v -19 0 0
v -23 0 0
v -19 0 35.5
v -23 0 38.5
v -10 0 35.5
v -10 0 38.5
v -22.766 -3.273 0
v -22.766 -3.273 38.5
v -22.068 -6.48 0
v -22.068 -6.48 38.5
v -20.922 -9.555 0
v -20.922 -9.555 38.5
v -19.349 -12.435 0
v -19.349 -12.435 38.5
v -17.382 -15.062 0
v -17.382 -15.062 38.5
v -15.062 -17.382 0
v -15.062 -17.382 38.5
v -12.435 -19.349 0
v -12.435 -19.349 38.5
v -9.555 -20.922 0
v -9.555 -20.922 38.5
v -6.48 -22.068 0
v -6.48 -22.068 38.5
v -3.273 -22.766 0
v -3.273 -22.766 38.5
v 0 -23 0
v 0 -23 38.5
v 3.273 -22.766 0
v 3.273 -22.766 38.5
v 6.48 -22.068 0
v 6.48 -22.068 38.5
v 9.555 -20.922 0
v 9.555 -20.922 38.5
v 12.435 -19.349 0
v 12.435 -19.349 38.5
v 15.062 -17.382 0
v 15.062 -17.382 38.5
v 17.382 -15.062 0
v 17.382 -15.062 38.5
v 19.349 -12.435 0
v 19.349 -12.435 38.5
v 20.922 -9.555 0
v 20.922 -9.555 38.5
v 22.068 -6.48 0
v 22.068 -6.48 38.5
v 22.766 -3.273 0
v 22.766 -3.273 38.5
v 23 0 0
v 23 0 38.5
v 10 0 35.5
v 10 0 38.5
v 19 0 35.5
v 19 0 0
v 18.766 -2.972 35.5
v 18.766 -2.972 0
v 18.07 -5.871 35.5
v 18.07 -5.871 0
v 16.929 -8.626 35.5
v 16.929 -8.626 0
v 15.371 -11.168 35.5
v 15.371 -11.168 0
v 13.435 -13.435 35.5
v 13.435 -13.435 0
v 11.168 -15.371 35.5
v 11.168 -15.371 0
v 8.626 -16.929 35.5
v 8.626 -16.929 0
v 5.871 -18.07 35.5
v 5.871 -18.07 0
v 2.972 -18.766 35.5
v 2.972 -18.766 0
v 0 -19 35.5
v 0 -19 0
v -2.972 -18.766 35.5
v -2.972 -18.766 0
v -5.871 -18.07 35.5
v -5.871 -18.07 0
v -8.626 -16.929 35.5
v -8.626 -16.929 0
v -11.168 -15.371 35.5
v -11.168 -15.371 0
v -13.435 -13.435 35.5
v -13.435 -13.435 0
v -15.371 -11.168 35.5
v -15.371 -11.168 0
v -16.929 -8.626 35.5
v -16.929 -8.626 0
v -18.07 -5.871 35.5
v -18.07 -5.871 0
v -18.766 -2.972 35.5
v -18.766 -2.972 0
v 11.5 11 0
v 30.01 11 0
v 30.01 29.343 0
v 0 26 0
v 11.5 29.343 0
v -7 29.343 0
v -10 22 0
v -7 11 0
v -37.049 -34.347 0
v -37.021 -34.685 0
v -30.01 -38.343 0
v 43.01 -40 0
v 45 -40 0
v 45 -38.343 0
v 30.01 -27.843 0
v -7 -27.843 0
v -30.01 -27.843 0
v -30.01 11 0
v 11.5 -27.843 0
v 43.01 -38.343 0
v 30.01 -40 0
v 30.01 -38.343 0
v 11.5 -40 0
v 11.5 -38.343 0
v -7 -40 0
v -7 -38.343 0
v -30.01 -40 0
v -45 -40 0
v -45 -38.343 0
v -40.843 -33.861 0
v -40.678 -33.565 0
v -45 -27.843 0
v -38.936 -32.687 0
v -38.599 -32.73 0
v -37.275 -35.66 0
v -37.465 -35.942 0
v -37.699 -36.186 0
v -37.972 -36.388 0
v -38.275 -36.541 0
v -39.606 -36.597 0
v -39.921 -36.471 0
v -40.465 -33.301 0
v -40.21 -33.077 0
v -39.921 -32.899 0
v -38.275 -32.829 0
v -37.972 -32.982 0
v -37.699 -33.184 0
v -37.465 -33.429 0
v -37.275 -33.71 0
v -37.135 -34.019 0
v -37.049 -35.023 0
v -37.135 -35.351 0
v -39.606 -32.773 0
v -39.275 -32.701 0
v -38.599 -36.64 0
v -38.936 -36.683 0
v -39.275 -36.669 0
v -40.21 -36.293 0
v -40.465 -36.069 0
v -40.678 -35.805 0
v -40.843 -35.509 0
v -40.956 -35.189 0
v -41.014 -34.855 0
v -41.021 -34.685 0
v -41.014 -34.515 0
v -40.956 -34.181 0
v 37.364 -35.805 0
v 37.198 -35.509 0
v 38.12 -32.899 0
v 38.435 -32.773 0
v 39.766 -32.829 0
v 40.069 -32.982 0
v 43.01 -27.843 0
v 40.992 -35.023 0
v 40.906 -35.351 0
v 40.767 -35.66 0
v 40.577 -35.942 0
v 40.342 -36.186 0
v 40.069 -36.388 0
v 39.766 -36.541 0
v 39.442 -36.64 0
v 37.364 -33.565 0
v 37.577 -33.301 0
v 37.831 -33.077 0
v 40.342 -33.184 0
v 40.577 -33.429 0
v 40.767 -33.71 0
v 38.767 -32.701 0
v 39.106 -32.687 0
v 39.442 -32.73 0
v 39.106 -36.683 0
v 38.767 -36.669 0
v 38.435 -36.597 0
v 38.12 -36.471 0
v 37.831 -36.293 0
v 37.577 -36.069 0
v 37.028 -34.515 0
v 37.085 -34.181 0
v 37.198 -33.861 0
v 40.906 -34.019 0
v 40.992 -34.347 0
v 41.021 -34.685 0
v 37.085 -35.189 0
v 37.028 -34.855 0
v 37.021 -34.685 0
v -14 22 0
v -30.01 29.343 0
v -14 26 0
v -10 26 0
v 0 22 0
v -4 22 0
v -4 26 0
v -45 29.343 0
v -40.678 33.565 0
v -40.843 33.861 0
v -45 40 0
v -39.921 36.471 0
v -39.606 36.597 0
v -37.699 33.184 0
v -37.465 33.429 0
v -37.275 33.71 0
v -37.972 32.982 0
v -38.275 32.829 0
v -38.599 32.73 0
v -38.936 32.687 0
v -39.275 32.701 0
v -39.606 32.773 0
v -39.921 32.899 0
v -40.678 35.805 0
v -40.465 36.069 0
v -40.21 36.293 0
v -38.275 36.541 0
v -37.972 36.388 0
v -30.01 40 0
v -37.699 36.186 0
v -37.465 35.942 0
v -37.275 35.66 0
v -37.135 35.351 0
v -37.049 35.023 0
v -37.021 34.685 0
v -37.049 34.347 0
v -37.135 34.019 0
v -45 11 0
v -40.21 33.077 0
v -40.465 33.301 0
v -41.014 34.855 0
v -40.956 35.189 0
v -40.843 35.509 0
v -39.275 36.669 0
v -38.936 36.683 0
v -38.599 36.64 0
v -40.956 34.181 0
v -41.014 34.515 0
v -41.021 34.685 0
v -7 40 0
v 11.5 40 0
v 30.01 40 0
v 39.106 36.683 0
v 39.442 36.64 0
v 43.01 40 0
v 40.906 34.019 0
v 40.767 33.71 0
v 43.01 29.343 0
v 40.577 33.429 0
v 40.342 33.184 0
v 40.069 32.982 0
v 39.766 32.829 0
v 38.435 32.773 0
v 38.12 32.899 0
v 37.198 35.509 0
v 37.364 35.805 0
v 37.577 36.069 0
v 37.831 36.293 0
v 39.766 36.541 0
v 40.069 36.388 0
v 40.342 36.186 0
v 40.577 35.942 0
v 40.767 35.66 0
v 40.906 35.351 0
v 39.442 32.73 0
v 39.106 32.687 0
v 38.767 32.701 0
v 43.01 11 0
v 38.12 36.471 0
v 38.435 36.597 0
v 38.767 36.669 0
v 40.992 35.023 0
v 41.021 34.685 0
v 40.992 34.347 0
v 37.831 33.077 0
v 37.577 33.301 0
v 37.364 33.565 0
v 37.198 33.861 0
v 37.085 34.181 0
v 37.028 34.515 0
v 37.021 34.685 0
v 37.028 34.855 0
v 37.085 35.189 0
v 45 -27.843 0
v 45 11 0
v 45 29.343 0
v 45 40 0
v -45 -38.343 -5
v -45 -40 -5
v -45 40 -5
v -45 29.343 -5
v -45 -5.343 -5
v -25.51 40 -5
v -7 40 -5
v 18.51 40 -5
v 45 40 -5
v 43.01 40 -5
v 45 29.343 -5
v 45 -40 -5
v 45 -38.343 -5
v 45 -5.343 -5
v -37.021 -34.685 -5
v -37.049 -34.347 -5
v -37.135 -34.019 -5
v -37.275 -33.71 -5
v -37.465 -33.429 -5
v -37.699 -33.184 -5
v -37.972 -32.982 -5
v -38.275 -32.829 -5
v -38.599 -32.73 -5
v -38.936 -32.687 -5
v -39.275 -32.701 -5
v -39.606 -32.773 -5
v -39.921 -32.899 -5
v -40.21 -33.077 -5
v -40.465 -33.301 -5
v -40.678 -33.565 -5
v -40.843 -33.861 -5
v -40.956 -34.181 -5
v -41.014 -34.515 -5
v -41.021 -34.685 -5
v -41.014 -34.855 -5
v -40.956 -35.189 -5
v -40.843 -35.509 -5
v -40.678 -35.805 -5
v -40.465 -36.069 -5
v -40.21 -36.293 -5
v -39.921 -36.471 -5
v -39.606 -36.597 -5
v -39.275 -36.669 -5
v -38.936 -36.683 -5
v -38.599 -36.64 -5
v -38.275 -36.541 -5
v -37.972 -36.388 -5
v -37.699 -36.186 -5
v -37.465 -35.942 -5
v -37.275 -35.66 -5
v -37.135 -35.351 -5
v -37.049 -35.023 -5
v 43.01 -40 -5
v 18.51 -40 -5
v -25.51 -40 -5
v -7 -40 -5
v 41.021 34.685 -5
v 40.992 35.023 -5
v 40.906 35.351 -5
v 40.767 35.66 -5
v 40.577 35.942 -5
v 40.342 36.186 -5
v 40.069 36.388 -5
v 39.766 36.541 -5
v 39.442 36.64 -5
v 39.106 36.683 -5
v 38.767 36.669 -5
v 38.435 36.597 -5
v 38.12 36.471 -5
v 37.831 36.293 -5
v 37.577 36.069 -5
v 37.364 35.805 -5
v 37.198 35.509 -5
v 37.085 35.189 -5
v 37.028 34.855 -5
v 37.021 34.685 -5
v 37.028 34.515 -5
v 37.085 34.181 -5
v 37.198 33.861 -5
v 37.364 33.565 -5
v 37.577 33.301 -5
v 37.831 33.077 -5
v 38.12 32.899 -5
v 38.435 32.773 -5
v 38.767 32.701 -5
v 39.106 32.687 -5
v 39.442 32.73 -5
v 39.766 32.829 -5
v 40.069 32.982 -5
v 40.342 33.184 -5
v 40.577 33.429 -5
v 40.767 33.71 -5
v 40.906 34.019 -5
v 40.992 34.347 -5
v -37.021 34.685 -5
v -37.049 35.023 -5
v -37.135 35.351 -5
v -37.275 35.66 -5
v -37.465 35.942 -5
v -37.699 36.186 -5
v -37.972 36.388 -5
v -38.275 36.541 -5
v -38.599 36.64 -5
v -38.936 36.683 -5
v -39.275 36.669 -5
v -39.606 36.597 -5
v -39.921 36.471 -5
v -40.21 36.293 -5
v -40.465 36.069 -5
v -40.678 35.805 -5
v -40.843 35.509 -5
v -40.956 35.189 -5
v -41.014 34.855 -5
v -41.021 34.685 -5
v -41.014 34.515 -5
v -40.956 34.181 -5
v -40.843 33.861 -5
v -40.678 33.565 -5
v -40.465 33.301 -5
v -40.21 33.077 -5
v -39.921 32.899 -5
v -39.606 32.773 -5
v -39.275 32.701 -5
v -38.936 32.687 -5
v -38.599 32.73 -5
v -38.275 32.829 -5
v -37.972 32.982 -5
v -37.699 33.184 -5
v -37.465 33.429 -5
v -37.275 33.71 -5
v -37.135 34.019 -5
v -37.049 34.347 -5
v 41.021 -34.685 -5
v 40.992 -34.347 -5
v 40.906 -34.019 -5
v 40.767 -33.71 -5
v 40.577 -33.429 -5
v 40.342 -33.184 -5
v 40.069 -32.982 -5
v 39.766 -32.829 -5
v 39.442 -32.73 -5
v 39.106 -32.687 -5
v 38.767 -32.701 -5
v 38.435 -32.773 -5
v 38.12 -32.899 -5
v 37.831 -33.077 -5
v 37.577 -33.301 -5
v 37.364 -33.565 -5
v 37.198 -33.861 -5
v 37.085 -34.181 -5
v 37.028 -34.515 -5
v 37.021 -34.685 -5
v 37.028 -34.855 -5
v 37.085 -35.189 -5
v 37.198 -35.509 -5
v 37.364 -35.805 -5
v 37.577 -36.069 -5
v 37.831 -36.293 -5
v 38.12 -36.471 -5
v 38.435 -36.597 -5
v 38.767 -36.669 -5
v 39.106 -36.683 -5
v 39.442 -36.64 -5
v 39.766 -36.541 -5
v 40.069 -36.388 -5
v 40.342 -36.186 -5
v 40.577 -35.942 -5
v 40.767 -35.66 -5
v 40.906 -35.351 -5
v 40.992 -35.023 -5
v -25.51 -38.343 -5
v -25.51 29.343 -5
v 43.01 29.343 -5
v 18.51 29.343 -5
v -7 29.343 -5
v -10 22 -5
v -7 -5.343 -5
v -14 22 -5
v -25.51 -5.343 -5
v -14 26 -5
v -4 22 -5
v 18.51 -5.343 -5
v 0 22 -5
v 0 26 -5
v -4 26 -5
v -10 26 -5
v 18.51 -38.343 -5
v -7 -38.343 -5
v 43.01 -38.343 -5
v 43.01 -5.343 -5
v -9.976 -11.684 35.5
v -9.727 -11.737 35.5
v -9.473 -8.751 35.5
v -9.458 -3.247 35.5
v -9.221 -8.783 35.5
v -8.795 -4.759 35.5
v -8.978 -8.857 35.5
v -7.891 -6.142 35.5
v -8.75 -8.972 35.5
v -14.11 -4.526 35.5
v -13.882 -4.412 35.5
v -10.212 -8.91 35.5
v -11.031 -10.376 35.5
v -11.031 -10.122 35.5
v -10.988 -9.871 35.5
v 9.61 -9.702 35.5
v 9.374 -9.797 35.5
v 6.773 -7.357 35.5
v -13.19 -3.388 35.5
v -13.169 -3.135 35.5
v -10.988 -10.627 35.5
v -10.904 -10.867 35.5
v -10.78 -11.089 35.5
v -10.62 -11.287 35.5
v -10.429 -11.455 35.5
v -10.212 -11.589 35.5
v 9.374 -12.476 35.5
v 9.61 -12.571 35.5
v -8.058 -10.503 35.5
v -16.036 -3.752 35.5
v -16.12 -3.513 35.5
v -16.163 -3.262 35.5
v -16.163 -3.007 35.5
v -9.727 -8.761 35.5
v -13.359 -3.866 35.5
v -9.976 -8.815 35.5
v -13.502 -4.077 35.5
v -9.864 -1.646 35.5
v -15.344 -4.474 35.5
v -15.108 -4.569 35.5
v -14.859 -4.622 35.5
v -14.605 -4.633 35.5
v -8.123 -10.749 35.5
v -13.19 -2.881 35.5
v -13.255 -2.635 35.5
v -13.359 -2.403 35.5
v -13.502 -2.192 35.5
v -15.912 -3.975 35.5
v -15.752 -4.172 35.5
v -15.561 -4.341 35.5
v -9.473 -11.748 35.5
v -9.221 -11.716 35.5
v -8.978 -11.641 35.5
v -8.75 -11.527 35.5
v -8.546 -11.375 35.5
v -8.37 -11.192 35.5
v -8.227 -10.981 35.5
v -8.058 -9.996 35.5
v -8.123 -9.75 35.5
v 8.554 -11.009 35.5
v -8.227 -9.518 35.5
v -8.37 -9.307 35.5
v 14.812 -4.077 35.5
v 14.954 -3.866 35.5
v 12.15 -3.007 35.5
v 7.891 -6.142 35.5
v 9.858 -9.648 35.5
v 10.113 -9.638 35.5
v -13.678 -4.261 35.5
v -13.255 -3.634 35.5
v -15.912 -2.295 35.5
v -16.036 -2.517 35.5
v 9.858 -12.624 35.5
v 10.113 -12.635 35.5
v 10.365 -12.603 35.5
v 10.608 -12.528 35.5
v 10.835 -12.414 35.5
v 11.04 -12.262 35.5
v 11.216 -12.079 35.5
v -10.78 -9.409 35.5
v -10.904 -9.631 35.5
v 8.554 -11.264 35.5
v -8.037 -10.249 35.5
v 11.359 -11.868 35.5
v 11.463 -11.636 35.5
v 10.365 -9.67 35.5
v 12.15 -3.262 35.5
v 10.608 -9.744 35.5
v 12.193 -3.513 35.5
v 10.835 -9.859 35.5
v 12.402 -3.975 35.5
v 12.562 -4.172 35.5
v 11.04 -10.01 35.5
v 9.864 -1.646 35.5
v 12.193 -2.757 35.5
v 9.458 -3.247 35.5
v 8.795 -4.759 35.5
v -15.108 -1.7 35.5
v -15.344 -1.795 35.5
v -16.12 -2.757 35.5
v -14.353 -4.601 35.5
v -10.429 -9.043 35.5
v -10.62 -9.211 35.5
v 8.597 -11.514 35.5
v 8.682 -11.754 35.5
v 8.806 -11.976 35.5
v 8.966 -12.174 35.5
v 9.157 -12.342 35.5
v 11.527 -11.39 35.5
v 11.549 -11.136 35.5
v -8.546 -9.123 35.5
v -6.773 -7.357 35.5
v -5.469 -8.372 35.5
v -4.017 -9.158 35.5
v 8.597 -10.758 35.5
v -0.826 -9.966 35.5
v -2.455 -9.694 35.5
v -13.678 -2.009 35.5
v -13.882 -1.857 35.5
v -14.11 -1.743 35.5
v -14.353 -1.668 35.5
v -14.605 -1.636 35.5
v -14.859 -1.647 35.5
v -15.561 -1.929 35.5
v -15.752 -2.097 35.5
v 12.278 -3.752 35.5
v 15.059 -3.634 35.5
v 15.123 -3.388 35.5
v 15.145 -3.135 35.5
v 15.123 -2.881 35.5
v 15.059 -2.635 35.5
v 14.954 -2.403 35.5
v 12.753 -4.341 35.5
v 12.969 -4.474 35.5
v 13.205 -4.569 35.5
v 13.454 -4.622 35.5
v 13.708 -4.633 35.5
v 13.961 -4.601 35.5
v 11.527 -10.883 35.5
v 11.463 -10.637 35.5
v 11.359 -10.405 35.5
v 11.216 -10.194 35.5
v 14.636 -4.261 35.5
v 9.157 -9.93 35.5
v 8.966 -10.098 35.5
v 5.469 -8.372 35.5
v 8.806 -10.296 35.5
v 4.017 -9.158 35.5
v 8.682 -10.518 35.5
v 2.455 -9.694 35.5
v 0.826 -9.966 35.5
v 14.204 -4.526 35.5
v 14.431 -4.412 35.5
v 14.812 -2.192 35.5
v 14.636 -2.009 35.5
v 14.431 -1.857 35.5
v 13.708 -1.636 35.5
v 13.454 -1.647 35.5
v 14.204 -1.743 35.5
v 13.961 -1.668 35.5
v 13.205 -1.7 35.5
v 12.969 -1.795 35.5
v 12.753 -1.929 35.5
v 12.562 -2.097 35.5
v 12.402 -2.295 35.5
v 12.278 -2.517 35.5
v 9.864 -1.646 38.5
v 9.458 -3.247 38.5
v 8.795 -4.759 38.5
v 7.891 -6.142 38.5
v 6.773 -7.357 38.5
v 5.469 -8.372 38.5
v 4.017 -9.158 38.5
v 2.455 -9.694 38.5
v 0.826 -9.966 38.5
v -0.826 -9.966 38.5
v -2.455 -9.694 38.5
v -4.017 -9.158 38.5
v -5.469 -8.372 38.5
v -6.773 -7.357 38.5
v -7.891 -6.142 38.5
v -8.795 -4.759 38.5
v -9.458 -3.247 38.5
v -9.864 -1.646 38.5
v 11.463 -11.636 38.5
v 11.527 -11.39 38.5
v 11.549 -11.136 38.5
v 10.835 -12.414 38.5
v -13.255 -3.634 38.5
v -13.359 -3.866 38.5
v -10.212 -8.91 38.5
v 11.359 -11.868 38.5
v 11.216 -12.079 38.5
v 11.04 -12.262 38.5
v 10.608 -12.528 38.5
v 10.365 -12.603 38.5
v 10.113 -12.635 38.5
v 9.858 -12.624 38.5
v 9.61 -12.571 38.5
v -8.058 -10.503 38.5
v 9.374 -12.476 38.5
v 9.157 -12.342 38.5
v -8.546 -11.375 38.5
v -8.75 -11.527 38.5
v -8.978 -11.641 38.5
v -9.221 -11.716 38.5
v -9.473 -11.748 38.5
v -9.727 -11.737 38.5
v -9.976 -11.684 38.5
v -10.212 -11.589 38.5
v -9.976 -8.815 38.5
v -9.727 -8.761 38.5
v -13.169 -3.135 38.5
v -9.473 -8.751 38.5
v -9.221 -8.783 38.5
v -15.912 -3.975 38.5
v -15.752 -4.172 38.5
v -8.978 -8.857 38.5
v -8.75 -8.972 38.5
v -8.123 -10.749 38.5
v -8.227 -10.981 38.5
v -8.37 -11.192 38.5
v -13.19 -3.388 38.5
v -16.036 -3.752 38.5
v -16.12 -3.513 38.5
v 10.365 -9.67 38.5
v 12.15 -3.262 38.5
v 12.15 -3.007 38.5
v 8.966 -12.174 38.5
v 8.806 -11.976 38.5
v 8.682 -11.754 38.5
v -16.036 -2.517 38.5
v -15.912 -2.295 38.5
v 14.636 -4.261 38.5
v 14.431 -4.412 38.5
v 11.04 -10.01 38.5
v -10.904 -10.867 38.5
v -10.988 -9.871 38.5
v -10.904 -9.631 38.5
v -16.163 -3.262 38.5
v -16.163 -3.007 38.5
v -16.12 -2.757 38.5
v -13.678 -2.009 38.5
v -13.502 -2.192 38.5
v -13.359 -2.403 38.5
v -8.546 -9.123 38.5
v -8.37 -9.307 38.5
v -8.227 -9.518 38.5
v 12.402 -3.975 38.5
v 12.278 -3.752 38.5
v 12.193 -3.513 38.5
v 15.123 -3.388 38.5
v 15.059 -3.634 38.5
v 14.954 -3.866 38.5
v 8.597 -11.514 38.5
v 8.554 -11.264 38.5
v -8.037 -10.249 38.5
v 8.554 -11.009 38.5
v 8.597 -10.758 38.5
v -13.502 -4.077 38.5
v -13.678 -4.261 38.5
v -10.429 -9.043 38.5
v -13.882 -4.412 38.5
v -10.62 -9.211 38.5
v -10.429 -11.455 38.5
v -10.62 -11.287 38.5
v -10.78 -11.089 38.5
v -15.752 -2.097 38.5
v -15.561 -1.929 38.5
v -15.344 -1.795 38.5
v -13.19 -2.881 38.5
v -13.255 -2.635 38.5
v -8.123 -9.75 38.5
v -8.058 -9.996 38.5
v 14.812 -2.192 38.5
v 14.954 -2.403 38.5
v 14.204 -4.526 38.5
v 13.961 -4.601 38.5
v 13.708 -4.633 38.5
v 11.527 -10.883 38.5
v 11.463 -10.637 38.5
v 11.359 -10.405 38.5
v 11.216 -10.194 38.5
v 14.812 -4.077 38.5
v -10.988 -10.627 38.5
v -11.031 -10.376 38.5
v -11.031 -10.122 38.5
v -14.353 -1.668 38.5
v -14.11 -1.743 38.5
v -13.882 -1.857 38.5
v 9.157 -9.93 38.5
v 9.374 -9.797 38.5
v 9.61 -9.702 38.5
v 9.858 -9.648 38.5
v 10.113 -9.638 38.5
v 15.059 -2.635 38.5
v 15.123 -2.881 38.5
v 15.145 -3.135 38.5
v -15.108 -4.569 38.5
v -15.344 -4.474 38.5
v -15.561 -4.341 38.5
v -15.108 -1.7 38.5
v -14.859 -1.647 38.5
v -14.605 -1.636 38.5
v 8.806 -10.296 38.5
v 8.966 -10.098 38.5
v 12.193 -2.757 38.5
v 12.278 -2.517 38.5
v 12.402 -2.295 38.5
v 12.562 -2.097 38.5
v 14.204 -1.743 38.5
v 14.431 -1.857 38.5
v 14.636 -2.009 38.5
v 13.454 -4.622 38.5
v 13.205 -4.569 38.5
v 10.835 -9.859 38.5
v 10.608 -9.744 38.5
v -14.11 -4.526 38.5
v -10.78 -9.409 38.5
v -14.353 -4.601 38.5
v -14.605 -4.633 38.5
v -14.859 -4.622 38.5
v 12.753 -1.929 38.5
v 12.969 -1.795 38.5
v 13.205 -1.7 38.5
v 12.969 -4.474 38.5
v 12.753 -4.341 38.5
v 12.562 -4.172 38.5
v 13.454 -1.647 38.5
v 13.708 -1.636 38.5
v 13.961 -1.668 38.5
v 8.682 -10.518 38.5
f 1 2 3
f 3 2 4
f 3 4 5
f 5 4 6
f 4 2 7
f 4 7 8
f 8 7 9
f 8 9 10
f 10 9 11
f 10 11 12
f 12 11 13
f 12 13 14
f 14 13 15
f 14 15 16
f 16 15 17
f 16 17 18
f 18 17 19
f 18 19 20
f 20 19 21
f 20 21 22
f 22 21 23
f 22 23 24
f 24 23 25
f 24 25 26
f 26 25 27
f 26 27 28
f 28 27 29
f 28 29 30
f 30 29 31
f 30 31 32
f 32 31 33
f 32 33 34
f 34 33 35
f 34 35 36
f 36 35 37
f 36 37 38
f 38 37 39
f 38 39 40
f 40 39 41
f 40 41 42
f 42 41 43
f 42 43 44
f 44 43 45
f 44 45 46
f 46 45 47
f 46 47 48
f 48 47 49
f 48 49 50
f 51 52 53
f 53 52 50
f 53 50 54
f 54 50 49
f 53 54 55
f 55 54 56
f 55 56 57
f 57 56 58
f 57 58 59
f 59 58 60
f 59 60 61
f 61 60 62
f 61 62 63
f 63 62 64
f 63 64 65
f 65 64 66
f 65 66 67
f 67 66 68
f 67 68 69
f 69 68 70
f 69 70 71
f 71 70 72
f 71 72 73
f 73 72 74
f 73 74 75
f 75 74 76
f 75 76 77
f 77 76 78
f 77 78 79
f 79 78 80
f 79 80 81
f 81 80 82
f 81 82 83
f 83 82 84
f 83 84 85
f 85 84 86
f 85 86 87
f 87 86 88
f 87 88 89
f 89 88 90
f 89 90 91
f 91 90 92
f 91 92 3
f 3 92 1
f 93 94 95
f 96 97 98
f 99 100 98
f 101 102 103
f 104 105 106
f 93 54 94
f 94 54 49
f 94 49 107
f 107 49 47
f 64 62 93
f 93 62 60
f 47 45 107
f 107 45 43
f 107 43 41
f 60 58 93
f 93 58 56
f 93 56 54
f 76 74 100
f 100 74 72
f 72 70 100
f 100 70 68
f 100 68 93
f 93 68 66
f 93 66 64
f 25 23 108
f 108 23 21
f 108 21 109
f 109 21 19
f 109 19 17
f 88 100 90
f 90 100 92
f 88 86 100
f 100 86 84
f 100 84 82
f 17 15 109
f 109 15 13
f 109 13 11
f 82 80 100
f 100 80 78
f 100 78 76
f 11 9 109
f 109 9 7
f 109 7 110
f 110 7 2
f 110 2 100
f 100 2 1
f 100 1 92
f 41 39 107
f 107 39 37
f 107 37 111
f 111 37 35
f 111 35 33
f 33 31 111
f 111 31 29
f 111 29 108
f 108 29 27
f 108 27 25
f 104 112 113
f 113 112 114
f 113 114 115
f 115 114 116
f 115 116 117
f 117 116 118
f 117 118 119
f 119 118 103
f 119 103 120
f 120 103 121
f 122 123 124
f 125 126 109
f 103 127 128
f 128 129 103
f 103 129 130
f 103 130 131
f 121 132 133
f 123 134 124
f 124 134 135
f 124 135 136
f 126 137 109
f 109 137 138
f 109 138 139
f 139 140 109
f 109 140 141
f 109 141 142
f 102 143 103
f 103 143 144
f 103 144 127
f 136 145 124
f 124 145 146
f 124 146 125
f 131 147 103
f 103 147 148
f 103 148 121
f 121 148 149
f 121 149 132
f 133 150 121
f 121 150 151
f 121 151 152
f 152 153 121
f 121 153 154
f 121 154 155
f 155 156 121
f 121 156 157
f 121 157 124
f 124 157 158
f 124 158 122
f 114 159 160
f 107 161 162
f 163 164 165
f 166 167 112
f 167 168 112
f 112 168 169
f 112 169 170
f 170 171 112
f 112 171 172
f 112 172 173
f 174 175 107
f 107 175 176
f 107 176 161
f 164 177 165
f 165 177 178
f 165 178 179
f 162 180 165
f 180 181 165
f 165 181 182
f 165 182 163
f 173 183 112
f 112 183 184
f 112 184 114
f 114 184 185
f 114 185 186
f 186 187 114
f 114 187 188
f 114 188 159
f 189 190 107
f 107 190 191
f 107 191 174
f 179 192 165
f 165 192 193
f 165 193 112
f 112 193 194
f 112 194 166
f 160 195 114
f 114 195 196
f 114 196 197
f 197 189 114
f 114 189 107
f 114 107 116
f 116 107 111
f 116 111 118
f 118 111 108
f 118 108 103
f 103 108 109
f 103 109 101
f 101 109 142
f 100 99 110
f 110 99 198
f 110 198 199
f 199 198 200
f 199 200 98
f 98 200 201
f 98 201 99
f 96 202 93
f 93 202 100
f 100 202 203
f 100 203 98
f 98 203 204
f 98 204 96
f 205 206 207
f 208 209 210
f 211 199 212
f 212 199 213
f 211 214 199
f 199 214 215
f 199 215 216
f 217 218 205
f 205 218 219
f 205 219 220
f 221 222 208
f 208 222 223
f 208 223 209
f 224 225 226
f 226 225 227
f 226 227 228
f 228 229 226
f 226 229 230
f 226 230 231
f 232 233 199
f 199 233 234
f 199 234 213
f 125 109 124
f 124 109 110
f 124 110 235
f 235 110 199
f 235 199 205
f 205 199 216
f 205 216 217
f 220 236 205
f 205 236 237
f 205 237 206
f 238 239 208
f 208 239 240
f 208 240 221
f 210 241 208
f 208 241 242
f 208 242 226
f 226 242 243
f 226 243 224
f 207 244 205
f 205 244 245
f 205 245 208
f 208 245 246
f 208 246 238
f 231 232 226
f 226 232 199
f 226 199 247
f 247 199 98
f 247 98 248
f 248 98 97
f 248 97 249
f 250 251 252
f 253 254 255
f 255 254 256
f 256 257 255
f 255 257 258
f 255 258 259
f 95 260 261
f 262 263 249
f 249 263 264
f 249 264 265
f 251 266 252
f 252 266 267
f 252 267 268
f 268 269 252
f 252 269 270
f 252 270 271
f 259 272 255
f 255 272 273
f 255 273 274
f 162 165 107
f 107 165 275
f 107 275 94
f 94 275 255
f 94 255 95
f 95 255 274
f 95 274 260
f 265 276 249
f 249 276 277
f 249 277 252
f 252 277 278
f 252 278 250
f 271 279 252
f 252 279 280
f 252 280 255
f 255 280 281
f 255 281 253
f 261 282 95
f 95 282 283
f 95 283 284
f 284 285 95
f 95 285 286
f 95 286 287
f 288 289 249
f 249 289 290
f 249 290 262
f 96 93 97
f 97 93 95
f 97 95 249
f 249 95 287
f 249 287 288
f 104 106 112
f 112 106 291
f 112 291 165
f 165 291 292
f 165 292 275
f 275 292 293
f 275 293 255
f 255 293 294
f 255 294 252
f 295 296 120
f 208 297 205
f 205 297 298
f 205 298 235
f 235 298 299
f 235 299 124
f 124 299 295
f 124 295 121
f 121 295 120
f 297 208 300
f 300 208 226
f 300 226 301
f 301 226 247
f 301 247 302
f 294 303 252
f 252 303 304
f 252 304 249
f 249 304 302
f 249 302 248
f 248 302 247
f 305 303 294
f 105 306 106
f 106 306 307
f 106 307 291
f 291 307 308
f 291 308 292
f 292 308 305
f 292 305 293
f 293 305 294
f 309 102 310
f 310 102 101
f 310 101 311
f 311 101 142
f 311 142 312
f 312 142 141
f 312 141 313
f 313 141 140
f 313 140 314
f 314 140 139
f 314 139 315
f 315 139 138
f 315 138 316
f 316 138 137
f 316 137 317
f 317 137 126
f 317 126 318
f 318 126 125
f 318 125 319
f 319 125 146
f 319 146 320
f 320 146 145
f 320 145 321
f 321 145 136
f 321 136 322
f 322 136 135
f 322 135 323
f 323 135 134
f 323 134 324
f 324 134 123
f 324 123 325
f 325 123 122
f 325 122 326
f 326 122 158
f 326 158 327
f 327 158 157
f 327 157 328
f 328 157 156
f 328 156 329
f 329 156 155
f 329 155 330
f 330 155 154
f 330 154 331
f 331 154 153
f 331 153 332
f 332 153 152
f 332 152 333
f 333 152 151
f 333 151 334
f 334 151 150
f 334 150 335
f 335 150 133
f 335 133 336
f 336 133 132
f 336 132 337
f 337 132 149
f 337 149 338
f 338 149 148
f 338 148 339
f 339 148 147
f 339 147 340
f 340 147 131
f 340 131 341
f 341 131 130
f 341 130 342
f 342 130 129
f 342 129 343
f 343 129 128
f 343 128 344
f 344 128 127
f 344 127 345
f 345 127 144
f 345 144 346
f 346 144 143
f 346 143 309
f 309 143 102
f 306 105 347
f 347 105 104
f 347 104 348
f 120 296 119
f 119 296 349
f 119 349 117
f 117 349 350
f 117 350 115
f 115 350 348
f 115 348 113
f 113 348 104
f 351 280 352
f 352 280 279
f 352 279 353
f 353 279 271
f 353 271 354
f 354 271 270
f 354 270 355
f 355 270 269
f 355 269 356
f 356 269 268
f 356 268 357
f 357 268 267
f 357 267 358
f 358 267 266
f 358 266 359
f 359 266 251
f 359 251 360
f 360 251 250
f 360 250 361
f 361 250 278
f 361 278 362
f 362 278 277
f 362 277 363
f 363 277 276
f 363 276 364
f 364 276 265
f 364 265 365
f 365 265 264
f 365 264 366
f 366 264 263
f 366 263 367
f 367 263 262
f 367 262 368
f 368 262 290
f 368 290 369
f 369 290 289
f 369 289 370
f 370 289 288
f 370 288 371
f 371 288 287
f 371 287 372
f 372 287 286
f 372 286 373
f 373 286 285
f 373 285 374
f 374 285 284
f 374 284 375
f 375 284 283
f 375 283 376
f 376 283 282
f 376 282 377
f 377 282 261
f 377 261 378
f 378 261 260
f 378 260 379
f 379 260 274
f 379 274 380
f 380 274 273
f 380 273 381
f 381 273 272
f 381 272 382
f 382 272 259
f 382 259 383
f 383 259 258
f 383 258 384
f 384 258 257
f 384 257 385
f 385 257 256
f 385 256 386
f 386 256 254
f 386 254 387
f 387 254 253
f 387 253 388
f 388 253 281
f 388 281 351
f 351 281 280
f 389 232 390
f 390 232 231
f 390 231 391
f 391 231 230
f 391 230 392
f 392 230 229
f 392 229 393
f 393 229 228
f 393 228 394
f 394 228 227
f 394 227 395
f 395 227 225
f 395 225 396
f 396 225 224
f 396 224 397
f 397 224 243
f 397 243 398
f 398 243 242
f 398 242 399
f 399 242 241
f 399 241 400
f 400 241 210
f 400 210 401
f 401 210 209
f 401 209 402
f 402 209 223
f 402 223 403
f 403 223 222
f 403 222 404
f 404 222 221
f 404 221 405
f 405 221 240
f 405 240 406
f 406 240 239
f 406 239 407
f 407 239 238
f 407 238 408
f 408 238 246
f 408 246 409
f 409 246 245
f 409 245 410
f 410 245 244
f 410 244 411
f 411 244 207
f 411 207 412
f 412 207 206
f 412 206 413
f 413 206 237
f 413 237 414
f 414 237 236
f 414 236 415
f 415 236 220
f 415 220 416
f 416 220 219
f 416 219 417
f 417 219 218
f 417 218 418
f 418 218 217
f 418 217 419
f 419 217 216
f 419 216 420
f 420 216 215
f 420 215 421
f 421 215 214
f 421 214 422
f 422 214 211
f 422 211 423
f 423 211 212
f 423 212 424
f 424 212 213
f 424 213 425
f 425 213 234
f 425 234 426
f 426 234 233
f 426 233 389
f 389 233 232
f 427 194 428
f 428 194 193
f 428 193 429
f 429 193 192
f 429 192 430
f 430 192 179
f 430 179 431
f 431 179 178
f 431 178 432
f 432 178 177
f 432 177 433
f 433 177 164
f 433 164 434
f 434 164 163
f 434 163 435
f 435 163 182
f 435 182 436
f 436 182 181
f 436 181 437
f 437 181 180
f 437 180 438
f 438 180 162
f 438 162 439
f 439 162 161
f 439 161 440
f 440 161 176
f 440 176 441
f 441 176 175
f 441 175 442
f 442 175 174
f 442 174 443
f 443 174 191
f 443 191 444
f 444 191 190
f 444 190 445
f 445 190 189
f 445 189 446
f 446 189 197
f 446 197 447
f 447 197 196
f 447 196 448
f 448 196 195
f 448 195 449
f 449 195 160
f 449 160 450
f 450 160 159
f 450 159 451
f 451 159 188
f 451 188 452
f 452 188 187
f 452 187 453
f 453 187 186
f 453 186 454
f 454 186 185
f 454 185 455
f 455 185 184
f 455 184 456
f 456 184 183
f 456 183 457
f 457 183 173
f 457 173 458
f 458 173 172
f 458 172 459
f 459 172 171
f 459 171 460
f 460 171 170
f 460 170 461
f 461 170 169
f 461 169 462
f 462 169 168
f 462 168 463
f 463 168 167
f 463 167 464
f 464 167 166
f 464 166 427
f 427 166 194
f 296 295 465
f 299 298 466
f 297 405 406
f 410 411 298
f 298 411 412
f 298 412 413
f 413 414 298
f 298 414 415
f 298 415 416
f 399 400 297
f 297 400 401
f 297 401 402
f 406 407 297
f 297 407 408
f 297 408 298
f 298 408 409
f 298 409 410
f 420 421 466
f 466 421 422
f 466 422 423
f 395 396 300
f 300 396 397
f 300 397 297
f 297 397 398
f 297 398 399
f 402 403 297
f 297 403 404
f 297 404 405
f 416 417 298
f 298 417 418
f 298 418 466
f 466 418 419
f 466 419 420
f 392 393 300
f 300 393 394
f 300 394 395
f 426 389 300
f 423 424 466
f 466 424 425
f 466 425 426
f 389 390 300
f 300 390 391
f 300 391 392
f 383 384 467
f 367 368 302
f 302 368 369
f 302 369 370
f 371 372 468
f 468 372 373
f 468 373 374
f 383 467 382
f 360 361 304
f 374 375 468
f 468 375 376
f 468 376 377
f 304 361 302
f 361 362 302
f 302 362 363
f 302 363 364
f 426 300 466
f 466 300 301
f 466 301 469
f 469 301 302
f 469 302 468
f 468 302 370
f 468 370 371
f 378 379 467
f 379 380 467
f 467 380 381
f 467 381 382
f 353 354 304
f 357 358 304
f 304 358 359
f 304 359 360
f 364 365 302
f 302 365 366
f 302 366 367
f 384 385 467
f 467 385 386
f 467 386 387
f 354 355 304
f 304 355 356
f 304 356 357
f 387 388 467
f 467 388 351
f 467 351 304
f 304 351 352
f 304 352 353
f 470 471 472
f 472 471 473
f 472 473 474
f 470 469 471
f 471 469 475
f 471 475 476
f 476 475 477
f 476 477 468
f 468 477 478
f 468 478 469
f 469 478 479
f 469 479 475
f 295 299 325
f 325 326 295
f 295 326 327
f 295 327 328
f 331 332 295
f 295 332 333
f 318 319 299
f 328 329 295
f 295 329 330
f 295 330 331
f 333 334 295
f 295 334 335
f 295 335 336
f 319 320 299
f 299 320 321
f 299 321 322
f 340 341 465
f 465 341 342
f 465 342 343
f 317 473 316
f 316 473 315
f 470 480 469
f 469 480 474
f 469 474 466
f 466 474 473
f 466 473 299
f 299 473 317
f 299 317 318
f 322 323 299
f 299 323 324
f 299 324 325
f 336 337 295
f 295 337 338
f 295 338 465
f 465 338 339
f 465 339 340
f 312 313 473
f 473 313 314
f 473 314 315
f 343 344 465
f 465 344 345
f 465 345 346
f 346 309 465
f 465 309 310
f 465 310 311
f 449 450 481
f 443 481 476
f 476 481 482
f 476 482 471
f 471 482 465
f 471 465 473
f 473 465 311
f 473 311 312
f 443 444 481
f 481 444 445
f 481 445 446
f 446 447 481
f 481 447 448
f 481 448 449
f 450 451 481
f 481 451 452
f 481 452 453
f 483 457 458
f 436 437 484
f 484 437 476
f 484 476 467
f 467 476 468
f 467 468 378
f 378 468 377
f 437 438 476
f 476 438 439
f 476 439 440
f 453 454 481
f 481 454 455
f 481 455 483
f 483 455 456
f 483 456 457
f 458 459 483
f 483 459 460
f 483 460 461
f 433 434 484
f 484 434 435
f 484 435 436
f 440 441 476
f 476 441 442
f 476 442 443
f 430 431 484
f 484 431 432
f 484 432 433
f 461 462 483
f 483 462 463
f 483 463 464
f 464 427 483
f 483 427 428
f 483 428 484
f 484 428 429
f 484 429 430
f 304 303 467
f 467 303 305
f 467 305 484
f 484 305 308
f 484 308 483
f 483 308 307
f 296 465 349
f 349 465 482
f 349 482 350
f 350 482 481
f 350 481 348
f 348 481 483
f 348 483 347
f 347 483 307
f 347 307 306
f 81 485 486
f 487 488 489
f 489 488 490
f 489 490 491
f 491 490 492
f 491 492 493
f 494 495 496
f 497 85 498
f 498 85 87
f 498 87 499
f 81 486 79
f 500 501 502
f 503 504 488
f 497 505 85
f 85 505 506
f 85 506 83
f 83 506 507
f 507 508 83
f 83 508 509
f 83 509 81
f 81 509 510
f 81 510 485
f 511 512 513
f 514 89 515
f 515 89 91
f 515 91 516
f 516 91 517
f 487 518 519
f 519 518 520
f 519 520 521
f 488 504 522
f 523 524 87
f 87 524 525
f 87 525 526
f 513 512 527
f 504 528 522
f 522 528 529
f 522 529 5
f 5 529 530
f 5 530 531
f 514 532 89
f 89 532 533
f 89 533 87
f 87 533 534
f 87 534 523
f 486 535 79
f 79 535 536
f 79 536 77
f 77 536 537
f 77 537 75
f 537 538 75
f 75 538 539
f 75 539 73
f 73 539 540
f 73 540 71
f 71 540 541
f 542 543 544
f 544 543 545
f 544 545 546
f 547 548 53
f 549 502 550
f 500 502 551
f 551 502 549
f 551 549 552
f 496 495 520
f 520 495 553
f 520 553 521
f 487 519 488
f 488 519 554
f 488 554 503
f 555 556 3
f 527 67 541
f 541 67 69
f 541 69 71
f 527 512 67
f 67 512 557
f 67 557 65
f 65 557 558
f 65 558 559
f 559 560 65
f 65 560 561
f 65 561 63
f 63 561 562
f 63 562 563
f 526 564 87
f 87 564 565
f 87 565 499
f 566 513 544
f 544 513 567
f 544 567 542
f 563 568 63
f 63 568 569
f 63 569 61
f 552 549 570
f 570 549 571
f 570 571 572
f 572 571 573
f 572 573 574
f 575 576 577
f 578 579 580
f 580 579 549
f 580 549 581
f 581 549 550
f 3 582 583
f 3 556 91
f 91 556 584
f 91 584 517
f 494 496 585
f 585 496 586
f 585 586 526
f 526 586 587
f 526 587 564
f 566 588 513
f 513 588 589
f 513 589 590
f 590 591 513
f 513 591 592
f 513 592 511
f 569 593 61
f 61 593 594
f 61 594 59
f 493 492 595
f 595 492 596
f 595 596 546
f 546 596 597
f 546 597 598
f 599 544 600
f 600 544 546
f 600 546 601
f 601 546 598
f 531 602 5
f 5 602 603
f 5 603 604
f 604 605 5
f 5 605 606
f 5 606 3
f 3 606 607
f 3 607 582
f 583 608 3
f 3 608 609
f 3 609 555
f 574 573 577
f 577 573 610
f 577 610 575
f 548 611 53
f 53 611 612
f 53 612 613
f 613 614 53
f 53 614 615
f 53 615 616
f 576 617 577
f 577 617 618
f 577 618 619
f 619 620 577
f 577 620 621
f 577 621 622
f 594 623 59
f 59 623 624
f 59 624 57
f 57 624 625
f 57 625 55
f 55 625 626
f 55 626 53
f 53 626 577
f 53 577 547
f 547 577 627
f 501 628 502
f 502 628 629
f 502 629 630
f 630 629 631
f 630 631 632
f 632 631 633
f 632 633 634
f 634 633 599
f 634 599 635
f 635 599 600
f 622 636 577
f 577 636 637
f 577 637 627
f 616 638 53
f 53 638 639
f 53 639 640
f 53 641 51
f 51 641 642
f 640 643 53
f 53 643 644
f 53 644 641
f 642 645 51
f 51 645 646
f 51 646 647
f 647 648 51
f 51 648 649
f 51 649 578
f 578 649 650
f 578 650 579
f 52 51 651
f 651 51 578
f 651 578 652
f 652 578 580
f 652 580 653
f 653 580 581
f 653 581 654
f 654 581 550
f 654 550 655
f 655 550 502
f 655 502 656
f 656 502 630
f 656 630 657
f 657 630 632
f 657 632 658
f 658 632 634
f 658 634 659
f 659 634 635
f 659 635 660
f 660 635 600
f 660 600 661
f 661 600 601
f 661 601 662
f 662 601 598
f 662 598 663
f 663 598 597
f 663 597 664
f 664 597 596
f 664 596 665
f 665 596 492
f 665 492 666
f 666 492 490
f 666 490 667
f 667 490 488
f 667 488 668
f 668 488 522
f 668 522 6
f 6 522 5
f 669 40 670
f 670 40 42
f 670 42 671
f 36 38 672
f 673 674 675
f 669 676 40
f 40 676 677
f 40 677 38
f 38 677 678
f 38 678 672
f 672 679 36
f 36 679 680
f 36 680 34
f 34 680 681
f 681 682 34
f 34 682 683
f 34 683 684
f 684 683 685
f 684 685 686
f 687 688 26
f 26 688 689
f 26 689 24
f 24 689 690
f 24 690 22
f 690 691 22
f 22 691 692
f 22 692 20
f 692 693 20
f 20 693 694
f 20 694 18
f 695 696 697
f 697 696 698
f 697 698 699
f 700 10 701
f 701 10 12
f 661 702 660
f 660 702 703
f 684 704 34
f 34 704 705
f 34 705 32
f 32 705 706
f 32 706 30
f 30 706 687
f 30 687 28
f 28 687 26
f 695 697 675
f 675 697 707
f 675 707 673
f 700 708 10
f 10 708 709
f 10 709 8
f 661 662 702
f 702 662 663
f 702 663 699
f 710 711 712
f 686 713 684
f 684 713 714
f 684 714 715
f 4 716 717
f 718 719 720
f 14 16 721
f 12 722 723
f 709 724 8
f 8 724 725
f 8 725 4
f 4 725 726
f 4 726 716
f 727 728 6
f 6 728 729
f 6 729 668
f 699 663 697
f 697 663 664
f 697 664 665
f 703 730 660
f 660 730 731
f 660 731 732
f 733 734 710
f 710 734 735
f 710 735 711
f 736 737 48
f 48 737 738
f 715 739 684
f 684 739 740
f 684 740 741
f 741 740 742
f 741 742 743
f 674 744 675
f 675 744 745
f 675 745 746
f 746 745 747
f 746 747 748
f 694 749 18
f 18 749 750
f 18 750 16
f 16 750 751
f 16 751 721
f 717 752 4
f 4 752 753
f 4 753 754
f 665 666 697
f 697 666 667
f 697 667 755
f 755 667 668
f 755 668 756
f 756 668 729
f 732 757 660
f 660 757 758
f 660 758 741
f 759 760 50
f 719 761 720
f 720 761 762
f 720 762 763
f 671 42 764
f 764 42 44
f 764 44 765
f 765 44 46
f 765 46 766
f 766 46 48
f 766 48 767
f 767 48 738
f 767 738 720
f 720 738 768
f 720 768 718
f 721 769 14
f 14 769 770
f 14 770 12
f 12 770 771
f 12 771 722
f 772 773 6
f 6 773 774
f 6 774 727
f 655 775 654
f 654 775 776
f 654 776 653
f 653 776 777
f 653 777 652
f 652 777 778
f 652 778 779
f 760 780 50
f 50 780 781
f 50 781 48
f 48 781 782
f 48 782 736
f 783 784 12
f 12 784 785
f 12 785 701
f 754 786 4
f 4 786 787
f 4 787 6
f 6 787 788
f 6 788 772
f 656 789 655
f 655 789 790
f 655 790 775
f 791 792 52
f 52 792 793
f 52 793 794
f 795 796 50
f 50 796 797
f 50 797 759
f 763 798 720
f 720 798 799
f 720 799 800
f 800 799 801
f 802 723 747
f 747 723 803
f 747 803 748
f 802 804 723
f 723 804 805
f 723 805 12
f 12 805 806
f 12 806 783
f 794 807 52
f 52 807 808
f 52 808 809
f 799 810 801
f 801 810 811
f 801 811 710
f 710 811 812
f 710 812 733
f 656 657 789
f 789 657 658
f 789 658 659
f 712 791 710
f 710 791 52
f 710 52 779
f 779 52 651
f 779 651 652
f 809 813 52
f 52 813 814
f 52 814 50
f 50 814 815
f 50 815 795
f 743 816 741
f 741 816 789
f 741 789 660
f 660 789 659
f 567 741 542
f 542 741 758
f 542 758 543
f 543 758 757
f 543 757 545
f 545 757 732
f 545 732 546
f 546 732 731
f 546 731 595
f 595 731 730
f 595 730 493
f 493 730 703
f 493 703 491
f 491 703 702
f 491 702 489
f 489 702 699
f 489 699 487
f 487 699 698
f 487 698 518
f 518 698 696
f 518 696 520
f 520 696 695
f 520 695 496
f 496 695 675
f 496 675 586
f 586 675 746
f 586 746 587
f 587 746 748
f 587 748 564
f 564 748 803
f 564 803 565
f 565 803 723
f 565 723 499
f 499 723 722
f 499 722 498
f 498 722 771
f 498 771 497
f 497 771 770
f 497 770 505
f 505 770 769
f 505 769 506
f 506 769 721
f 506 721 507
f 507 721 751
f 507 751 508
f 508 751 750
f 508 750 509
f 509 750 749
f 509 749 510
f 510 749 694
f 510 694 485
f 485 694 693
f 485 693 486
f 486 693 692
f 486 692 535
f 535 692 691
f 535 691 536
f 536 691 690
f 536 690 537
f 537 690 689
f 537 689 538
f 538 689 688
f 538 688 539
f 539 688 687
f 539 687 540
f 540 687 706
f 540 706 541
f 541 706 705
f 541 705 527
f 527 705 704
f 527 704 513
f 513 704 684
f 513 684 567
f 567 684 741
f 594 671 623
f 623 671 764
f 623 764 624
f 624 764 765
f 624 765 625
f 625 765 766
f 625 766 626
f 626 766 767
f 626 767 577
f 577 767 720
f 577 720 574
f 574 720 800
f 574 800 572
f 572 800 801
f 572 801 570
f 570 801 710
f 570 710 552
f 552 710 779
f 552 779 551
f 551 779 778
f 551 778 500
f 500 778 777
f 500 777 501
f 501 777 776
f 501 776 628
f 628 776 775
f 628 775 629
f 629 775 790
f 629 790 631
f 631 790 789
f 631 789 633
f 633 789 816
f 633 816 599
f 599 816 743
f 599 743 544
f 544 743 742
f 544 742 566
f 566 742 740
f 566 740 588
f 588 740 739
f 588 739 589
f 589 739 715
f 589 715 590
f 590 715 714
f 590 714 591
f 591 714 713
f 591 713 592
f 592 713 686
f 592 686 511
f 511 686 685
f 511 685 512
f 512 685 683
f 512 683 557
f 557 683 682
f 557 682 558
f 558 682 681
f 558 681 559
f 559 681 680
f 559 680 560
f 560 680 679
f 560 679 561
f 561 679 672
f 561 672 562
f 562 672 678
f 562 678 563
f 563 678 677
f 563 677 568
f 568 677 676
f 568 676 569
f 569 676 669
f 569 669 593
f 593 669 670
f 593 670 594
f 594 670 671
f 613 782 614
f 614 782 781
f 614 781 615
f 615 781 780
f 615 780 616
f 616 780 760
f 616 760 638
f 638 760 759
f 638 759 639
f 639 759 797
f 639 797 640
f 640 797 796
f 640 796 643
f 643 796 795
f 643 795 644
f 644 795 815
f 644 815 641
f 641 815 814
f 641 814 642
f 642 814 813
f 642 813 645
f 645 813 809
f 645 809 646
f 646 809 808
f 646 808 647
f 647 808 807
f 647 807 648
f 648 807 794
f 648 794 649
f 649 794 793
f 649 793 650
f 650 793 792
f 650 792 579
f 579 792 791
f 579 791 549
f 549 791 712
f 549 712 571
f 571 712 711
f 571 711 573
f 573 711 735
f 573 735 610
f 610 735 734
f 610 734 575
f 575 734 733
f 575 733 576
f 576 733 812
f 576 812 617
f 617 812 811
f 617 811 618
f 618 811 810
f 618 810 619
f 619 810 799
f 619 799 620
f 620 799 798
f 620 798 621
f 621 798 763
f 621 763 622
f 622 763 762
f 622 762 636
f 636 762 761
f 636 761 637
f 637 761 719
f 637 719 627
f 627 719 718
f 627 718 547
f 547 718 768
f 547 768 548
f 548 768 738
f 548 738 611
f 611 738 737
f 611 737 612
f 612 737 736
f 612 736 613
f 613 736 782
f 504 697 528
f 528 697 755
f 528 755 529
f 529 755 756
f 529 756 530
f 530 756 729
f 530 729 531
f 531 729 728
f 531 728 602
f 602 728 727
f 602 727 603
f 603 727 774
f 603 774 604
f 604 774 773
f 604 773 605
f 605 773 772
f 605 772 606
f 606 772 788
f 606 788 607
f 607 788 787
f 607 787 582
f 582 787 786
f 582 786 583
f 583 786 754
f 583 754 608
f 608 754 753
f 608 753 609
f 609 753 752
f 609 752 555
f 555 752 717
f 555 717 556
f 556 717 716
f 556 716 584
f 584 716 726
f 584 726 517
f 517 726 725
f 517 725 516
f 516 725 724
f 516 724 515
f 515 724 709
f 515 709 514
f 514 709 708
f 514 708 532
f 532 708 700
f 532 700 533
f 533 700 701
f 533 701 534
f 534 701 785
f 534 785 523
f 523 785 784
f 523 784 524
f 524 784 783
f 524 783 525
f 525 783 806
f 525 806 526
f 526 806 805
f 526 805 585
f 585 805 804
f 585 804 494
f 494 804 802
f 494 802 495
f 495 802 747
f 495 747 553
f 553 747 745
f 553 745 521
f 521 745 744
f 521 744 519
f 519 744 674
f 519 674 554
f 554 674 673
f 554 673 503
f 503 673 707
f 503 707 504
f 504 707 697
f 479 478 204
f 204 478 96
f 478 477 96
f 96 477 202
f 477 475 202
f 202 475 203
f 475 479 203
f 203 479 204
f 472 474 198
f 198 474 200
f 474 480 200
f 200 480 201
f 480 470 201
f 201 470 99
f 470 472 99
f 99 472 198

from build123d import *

# Parameters (mm, degrees)
BOSS_EXTRUDE1_DEPTH = 35.5
BOSS_EXTRUDE2_START = 5
SKETCH2_W           = 90
SKETCH2_H           = 80
SKETCH2_R           = 2
BOSS_EXTRUDE2_DEPTH = 5
BOSS_EXTRUDE3_DEPTH = 3
SKETCH4_R           = 1.5
CUT_EXTRUDE1_DEPTH  = 3
SKETCH5_W           = 4
SKETCH5_H           = 4
CUT_EXTRUDE2_DEPTH  = 72.465026412


with BuildPart() as part:
    # Sketch1 → Boss-Extrude1 (new body)
    with BuildSketch(Plane.XY):
        with BuildLine():
            Line((-23, 0), (-19, 0))
            ThreePointArc((-19, 0), (0, -19), (19, 0))
            Line((19, 0), (23, 0))
            ThreePointArc((23, 0), (0, -23), (-23, 0))
        make_face()
    extrude(amount=BOSS_EXTRUDE1_DEPTH)

    # Sketch2 → Boss-Extrude2 (add)
    # profile 1 of 2: a face of its own
    with BuildSketch(Plane(origin=(0, 0, 0), x_dir=(-1, 0, 0), z_dir=(0, 0, -1)).offset(BOSS_EXTRUDE2_START)):
        Rectangle(SKETCH2_W, SKETCH2_H)
        with Locations((39.020725451, 34.685089289)):
            Circle(SKETCH2_R, mode=Mode.SUBTRACT)
        with Locations((-39.020725451, 34.685089289)):
            Circle(SKETCH2_R, mode=Mode.SUBTRACT)
        with Locations((39.020725451, -34.685089289)):
            Circle(SKETCH2_R, mode=Mode.SUBTRACT)
        with Locations((-39.020725451, -34.685089289)):
            Circle(SKETCH2_R, mode=Mode.SUBTRACT)
        with BuildLine():
            Line((23, 0), (19, 0))
            ThreePointArc((19, 0), (0, -19), (-19, 0))
            Line((-19, 0), (-23, 0))
            ThreePointArc((-23, 0), (0, -23), (23, 0))
        make_face(mode=Mode.SUBTRACT)
    # profile 2 of 2: a face of its own
    with BuildSketch(Plane(origin=(0, 0, 0), x_dir=(-1, 0, 0), z_dir=(0, 0, -1)).offset(BOSS_EXTRUDE2_START)):
        with BuildLine():
            ThreePointArc((-23, 0), (0, -23), (23, 0))
            Line((23, 0), (19, 0))
            ThreePointArc((19, 0), (0, -19), (-19, 0))
            Line((-19, 0), (-23, 0))
        make_face()
    extrude(amount=-BOSS_EXTRUDE2_DEPTH)

    # Sketch3 → Boss-Extrude3 (add)
    with BuildSketch(Plane.XY.offset(35.5)):
        with BuildLine():
            Line((-23, 0), (-10, 0))
            ThreePointArc((-10, 0), (0, -10), (10, 0))
            Line((10, 0), (23, 0))
            ThreePointArc((23, 0), (0, -23), (-23, 0))
        make_face()
    extrude(amount=BOSS_EXTRUDE3_DEPTH)

    # Sketch4 → Cut-Extrude1 (cut)
    with BuildSketch(Plane.XY.offset(38.5)):
        with Locations((-9.536891354, -10.249278184)):
            Circle(SKETCH4_R)
        with Locations((13.644580955, -3.134551093)):
            Circle(SKETCH4_R)
        with Locations((10.049016147, -11.136304346)):
            Circle(SKETCH4_R)
        with Locations((-14.668830541, -3.134551093)):
            Circle(SKETCH4_R)
    extrude(amount=-CUT_EXTRUDE1_DEPTH, mode=Mode.SUBTRACT)

    # Sketch5 → Cut-Extrude2 (cut, through all)
    with BuildSketch(Plane.XY):
        with Locations((-12, 24)):
            Rectangle(SKETCH5_W, SKETCH5_H)
        with Locations((-2, 24)):
            Rectangle(SKETCH5_W, SKETCH5_H)
    extrude(amount=-CUT_EXTRUDE2_DEPTH, mode=Mode.SUBTRACT)


solid = part.part
